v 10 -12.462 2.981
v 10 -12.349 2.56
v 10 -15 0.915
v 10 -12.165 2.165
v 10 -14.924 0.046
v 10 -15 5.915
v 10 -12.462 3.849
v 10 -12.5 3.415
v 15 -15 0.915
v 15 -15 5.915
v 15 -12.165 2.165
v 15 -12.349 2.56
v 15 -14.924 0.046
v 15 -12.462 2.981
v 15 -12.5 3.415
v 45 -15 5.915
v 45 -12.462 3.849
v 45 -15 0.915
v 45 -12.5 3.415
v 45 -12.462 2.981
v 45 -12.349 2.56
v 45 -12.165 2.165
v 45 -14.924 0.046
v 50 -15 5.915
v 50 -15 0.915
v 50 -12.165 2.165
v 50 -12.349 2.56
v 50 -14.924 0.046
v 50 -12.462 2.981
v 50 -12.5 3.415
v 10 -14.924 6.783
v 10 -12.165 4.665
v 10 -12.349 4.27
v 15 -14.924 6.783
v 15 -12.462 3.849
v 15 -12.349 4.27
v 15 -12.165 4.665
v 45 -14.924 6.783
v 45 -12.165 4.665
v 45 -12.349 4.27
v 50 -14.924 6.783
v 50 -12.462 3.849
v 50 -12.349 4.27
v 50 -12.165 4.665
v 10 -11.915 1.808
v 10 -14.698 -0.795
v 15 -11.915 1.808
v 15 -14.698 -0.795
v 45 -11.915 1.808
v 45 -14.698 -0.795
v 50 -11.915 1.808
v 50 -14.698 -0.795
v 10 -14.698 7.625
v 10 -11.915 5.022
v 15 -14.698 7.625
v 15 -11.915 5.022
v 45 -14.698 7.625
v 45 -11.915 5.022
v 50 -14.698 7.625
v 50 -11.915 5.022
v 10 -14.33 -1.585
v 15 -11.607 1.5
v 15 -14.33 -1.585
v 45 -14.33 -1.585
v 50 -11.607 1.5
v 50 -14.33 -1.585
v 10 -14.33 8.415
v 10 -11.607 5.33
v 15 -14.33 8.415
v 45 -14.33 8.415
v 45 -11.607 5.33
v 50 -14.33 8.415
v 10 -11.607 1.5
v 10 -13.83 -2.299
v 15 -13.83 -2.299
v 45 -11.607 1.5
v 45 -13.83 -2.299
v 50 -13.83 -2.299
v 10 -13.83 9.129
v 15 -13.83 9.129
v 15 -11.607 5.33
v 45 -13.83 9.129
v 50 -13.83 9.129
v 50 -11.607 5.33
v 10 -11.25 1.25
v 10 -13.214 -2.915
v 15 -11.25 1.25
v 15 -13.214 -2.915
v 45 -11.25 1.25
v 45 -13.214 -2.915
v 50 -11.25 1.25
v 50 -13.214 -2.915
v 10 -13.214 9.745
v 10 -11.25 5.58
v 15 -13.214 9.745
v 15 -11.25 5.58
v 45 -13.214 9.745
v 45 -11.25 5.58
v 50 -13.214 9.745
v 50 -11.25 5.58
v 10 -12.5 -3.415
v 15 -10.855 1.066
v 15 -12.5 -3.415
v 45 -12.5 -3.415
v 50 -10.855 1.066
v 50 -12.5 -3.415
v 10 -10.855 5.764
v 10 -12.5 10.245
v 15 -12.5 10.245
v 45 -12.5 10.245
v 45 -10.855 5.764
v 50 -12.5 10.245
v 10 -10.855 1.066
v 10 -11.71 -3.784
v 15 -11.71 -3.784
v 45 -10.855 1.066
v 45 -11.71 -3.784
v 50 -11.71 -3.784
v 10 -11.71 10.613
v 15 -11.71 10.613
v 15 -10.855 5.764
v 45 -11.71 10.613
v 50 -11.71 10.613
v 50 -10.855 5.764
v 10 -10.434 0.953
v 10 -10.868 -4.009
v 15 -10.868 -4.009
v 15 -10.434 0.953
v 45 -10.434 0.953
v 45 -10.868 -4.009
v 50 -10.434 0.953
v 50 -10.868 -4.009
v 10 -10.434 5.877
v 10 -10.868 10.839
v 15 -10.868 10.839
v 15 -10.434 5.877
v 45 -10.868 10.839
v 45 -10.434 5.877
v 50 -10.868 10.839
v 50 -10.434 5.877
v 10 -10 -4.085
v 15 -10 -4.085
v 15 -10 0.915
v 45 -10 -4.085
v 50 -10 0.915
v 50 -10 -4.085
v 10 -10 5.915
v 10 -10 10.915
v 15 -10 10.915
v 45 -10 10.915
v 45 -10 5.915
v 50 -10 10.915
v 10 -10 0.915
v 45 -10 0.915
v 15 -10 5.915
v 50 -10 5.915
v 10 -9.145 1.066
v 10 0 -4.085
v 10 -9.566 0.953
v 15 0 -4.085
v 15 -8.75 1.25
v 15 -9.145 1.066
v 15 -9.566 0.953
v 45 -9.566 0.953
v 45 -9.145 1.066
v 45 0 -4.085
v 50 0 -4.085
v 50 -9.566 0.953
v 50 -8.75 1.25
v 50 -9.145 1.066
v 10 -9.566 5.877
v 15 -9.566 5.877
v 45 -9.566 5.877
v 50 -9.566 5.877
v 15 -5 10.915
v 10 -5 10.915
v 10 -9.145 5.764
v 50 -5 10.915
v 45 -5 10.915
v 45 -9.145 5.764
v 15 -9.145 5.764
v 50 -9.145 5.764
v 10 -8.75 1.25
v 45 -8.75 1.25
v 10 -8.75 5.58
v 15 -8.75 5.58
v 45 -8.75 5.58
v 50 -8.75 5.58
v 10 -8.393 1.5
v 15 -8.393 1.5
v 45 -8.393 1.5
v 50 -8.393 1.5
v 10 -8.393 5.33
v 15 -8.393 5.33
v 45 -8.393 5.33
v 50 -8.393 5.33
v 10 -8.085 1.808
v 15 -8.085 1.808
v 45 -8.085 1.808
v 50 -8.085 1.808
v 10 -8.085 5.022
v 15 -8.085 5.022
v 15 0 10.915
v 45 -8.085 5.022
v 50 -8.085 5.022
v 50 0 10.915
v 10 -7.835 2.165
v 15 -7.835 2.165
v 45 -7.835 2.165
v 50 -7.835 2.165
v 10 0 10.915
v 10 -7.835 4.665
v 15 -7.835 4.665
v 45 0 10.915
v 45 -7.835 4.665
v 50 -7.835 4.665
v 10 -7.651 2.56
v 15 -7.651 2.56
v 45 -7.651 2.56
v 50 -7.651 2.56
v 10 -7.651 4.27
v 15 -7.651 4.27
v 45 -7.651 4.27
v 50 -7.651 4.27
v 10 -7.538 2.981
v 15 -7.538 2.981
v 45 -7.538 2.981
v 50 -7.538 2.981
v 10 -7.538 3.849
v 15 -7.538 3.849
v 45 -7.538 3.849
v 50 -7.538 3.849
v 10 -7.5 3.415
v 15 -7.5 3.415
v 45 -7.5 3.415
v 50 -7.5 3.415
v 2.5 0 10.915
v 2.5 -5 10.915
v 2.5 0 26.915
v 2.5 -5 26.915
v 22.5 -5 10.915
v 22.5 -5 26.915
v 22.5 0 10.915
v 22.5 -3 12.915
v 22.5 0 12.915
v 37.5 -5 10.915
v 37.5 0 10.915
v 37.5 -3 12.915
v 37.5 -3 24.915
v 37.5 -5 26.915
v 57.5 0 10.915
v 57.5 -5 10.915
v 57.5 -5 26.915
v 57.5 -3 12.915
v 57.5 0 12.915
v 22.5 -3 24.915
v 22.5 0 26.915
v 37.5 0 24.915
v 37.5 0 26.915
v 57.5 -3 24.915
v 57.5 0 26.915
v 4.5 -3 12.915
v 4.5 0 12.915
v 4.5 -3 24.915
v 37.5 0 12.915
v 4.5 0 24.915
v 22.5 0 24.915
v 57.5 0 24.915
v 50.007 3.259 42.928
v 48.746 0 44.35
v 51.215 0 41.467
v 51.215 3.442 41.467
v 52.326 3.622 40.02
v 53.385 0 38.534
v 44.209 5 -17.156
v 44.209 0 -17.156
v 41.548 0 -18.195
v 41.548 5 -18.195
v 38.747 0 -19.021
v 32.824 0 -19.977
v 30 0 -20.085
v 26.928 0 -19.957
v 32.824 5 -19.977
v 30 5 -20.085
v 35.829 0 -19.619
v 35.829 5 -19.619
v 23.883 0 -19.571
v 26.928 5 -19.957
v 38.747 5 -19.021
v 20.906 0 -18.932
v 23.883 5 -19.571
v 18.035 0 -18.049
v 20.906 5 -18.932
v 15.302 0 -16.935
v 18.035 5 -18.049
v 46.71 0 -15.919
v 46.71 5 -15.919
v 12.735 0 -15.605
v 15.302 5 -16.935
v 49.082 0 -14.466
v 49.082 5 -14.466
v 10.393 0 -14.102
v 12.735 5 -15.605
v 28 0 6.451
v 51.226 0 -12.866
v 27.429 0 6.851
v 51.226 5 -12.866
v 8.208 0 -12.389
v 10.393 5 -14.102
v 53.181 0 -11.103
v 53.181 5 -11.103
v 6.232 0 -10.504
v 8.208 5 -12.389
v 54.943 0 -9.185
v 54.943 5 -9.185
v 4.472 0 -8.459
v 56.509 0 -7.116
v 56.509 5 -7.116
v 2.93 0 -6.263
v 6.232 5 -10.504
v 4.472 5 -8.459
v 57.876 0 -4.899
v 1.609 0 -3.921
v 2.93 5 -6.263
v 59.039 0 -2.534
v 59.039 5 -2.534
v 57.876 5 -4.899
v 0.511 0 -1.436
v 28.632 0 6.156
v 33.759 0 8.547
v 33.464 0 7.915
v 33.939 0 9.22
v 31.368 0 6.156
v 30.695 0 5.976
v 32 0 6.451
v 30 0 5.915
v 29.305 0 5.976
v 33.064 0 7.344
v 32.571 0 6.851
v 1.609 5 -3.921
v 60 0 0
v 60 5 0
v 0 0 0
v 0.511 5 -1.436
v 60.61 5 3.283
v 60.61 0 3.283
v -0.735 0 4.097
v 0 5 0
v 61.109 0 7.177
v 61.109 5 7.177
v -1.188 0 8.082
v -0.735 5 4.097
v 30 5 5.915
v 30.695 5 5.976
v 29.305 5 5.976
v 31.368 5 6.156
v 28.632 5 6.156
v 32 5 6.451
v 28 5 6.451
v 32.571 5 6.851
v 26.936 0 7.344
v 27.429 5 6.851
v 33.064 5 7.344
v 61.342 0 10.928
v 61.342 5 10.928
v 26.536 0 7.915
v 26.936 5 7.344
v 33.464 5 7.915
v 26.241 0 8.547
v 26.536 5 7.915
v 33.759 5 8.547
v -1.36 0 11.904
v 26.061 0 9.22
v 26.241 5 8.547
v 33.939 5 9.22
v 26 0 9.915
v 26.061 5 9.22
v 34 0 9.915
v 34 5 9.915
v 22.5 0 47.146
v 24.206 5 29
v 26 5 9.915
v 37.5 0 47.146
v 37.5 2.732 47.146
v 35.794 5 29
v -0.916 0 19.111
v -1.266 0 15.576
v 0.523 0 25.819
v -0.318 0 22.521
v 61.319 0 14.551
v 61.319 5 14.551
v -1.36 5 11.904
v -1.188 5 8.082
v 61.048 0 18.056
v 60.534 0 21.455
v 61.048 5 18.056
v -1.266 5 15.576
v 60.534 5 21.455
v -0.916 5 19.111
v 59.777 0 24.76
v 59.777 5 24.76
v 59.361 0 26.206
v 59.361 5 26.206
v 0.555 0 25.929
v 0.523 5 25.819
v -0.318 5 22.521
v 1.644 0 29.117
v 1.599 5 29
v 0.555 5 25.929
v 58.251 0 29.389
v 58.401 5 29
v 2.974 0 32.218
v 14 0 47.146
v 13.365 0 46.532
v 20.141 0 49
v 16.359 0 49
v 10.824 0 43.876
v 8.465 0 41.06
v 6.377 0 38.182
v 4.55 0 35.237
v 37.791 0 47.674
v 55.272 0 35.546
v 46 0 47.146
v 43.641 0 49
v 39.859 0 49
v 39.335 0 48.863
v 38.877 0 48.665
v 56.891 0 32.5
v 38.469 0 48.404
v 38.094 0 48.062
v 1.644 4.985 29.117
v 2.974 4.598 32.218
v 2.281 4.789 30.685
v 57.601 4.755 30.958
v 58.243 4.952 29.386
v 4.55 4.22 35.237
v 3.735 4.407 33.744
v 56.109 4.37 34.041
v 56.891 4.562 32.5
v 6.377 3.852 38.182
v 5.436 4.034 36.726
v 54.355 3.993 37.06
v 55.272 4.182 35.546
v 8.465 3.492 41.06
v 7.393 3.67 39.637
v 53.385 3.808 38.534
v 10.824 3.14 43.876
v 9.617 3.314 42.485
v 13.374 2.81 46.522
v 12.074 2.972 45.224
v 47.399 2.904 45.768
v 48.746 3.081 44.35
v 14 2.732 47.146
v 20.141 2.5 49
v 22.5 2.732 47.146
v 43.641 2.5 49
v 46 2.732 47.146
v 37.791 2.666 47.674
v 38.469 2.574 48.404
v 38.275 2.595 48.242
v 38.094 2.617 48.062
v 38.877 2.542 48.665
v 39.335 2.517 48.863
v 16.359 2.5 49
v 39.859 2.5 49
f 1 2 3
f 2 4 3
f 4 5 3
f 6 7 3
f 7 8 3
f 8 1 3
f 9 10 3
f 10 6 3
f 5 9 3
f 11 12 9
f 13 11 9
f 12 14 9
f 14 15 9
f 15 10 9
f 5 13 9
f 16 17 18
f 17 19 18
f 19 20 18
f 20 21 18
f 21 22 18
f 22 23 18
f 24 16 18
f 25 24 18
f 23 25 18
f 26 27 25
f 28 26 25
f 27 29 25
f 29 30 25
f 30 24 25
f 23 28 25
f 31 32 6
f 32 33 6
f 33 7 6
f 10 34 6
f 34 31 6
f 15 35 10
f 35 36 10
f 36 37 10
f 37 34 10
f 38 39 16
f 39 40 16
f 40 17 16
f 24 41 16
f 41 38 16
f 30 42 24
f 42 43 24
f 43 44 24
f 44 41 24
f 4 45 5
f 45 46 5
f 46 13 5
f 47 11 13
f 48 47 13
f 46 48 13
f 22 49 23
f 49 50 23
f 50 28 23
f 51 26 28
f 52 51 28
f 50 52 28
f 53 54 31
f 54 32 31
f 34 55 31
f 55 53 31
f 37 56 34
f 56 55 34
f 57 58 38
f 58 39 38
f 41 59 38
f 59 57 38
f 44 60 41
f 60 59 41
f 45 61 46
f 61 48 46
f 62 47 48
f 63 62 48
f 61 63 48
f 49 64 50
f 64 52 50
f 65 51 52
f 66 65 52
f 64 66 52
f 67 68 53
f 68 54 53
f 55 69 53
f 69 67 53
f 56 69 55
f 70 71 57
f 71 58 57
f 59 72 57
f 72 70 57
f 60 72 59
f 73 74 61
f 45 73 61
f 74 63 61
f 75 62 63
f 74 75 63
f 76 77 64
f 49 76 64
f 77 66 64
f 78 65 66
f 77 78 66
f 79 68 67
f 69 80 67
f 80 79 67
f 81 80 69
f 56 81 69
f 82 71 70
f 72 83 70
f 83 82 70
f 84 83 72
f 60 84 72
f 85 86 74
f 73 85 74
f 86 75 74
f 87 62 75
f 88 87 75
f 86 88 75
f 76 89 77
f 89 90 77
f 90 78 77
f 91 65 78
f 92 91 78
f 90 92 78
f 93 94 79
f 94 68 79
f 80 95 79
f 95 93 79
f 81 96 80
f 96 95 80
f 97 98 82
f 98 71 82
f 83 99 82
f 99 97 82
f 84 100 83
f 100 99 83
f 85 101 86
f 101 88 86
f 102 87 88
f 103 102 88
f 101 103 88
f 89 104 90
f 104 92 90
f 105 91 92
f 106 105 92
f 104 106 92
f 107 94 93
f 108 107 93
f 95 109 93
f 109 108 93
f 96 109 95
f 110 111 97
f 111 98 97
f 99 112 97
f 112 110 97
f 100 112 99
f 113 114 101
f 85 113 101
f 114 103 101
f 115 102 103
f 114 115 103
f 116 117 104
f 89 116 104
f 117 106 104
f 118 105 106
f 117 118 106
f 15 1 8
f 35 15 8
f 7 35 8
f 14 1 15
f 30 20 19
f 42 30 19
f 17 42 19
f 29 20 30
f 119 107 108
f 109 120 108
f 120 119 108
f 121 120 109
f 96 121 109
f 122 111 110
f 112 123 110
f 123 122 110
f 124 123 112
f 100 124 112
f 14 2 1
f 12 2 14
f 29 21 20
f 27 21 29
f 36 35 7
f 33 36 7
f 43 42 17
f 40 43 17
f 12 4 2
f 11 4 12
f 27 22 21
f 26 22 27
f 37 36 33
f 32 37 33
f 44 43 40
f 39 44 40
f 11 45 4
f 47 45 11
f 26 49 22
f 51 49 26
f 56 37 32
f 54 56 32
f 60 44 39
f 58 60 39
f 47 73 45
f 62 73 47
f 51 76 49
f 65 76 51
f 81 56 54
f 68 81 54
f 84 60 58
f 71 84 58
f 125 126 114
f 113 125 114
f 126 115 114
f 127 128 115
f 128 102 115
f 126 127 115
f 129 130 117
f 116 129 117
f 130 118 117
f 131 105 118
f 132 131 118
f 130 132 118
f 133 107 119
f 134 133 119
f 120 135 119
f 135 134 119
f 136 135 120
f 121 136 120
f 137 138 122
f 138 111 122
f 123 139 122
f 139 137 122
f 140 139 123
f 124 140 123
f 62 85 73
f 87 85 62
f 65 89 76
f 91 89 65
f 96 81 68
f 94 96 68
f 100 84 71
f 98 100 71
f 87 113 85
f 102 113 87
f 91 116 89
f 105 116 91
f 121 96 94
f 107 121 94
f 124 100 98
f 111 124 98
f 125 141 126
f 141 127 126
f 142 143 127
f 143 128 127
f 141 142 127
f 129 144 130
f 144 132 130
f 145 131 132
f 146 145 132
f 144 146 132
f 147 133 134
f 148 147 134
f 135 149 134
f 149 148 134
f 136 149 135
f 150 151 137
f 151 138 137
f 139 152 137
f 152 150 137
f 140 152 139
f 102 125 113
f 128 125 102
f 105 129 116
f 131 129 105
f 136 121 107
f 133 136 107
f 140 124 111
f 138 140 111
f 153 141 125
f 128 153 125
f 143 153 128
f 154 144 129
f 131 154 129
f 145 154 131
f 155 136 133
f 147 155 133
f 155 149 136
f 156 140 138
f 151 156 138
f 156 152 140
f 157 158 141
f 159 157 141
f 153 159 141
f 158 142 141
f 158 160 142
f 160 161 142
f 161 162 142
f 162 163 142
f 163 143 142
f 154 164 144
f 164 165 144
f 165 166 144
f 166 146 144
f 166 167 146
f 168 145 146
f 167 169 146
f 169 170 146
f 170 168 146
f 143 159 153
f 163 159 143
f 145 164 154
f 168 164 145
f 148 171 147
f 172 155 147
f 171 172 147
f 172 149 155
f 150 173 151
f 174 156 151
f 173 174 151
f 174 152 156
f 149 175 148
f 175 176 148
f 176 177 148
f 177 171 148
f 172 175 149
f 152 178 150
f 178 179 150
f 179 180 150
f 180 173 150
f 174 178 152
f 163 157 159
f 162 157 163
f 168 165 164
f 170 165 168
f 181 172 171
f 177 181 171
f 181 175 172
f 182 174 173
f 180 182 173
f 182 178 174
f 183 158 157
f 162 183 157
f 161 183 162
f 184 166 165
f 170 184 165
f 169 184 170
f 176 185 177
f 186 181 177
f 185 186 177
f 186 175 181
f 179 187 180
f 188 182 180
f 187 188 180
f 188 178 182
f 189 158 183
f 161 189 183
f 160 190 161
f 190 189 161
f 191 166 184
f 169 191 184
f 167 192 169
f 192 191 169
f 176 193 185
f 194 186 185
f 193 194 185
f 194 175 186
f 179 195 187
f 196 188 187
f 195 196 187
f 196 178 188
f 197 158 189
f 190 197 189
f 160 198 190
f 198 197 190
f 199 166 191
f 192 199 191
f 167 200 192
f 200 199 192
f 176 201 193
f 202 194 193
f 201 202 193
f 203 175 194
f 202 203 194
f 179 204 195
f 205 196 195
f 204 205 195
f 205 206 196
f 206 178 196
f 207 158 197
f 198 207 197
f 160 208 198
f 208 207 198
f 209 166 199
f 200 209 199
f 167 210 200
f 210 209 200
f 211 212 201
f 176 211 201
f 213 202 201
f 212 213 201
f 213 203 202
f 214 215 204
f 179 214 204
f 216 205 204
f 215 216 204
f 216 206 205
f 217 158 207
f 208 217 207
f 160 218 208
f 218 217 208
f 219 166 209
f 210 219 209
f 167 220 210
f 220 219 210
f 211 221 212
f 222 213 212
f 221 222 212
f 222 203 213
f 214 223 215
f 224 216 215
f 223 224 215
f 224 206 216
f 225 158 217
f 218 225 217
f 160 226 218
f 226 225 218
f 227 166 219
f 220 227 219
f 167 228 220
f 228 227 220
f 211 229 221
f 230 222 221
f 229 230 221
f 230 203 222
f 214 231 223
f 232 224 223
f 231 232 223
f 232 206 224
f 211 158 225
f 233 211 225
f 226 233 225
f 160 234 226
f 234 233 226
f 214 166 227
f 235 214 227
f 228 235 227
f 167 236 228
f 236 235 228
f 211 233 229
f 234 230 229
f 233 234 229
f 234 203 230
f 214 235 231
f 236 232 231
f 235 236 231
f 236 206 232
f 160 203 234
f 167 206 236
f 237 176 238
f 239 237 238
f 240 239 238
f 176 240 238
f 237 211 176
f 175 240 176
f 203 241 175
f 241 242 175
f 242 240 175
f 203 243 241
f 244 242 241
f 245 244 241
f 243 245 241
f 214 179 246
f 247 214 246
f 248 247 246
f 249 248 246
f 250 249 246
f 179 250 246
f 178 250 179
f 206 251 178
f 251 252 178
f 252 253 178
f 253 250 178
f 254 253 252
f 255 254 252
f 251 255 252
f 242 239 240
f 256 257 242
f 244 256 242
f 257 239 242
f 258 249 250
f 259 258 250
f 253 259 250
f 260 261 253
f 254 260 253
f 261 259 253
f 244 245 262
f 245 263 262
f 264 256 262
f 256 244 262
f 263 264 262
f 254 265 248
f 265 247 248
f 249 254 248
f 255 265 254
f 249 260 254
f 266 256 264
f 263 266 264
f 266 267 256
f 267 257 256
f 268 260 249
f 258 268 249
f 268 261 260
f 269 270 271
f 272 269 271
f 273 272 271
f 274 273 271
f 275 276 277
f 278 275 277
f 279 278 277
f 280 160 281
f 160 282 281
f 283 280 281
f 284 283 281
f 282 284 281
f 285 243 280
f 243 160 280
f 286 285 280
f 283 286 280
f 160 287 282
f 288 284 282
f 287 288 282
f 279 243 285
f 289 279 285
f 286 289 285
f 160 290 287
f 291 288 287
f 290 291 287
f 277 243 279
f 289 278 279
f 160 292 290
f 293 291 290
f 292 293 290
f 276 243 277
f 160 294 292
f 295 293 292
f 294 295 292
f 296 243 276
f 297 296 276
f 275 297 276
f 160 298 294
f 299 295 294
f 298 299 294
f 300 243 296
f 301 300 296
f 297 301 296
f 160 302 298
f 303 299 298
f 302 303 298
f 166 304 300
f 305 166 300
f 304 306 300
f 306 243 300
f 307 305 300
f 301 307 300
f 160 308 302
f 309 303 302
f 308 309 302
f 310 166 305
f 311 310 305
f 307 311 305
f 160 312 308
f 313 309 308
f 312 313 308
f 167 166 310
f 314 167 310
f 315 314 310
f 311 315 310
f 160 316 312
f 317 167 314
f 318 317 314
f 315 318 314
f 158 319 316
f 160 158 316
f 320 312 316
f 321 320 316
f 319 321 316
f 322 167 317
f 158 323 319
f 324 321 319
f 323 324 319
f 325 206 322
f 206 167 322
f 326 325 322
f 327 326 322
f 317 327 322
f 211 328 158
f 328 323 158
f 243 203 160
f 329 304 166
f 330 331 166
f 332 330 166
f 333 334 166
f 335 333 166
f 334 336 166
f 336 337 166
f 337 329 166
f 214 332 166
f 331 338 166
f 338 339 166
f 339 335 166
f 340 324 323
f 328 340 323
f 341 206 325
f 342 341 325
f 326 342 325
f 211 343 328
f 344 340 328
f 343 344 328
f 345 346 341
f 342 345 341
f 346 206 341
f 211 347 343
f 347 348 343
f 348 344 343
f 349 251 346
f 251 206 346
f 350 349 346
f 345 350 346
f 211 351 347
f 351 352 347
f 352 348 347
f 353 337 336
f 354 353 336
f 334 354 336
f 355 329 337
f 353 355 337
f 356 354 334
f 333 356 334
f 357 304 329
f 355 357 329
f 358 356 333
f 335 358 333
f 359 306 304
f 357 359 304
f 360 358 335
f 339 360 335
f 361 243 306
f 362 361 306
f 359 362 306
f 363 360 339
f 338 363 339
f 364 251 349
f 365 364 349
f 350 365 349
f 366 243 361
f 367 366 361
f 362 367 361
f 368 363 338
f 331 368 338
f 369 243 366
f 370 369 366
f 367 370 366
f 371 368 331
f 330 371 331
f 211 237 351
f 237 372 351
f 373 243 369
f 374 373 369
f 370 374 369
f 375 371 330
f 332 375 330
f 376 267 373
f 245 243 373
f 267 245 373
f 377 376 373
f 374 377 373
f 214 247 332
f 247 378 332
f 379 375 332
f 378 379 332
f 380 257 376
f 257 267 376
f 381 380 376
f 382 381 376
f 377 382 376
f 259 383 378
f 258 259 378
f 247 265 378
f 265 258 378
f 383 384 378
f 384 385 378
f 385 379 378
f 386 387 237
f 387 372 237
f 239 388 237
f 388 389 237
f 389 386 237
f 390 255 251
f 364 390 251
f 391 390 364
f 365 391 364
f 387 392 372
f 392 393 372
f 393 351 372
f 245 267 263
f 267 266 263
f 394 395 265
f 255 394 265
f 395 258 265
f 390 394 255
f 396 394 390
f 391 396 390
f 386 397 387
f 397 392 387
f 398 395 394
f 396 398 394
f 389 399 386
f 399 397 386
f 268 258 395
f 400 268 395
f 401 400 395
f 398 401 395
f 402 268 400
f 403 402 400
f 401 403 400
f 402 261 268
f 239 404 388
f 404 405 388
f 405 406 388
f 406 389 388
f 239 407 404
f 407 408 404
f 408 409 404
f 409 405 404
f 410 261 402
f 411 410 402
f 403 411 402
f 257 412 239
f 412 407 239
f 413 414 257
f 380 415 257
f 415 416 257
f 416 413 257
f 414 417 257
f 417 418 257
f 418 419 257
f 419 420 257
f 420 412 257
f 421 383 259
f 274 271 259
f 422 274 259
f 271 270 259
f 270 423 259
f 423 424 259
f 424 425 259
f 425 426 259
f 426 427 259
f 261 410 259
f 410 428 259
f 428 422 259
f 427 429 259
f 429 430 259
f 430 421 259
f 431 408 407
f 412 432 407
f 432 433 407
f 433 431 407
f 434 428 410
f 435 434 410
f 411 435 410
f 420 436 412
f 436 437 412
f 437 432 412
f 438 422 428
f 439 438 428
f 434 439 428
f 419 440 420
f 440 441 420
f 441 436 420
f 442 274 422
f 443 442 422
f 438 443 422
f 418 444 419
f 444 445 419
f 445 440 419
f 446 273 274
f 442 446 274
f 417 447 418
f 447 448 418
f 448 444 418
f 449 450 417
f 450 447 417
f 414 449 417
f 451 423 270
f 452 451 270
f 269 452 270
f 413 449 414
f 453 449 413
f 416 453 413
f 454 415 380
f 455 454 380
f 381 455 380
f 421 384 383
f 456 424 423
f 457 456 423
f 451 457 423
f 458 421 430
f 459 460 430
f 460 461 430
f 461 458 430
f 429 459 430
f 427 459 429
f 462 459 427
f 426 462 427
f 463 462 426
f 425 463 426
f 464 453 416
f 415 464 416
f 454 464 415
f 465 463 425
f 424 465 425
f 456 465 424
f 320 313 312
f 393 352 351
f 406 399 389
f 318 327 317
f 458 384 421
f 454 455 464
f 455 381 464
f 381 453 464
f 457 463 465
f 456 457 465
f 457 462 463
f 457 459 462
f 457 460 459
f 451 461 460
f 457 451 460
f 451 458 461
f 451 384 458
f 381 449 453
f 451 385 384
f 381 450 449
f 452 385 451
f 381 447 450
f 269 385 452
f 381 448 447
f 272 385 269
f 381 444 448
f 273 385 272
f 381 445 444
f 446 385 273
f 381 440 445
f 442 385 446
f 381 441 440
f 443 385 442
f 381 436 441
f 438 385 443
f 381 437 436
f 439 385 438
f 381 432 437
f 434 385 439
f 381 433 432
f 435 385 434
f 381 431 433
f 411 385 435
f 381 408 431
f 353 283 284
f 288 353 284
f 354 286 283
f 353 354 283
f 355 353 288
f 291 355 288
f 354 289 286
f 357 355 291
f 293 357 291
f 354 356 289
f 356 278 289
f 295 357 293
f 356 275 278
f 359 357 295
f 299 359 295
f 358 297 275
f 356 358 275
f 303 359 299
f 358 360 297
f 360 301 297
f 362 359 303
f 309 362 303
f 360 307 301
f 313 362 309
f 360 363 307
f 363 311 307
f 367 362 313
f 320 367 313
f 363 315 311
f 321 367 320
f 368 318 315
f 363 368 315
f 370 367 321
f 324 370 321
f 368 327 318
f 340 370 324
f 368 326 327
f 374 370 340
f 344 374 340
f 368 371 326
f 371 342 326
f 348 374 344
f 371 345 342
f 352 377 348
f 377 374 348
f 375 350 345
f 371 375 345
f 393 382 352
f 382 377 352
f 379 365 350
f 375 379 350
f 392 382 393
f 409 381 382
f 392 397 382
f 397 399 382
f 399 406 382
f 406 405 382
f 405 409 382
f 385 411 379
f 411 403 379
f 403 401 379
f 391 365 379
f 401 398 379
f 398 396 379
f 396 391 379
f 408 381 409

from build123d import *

# Parameters (mm, degrees)
BOSS_EXTRUDE1_DEPTH = 5
SKETCH2_W           = 20
SKETCH2_H           = 2
BOSS_EXTRUDE2_DEPTH = 3
SKETCH3_W           = 20
SKETCH3_H           = 16
BOSS_EXTRUDE3_DEPTH = 2
CUT_EXTRUDE1_DEPTH  = 62.362825506
SKETCH6_W           = 5
SKETCH6_H           = 15
BOSS_EXTRUDE4_DEPTH = 15
SKETCH7_R           = 2.5
CUT_EXTRUDE2_DEPTH  = 40
FILLET1_R           = 5
SKETCH8_W           = 2
SKETCH8_H           = 12
BOSS_EXTRUDE5_DEPTH = 3


with BuildPart() as part:
    # Sketch1 → Boss-Extrude1 (new body)
    with BuildSketch(Plane(origin=(0, 0, 0), x_dir=(1, 0, 0), z_dir=(0, 1, 0))):
        with BuildLine():
            Line((26, -9.914732545), (22.5, -47.146428929))
            Line((22.5, -47.146428929), (20.1411286, -49))
            Line((20.1411286, -49), (16.3588714, -49))
            Line((16.3588714, -49), (14, -47.146428929))
            add(Edge.make_bspline(
                [(0, 0), (-5.93850555, -28.119223668), (14, -47.146428929)],
                knots=[0, 0, 0, 1, 1, 1], degree=2))
            add(Edge.make_bspline(
                [(0, 0), (8.75, 26.780356607), (51.25, 26.780356607), (60, 0)],
                knots=[0, 0, 0, 0, 1, 1, 1, 1], degree=3))
            add(Edge.make_bspline(
                [(60, 0), (65.93850555, -28.119223668), (46, -47.146428929)],
                knots=[0, 0, 0, 1, 1, 1], degree=2))
            Line((46, -47.146428929), (43.6411286, -49))
            Line((43.6411286, -49), (39.8588714, -49))
            add(Edge.make_bspline(
                [(37.5, -47.146428929), (38.196873938, -48.687326951), (39.8588714, -49)],
                knots=[0, 0, 0, 1, 1, 1], degree=2))
            Line((37.5, -47.146428929), (34, -9.914732545))
            ThreePointArc((34, -9.914732545), (30, -5.914732545), (26, -9.914732545))
        make_face()
    extrude(amount=BOSS_EXTRUDE1_DEPTH)

    # Sketch2 → Boss-Extrude2 (add)
    with BuildSketch(Plane.XZ):
        with Locations((47.5, 11.914732545)):
            Rectangle(SKETCH2_W, SKETCH2_H)
        with Locations((47.5, 25.914732545)):
            Rectangle(SKETCH2_W, SKETCH2_H)
        with Locations((12.5, 11.914732545)):
            Rectangle(SKETCH2_W, SKETCH2_H)
        with Locations((12.5, 25.914732545)):
            Rectangle(SKETCH2_W, SKETCH2_H)
    extrude(amount=BOSS_EXTRUDE2_DEPTH)

    # Sketch3 → Boss-Extrude3 (add)
    with BuildSketch(Plane.XZ.offset(3)):
        with Locations((47.5, 18.914732545)):
            Rectangle(SKETCH3_W, SKETCH3_H)
        with Locations((12.5, 18.914732545)):
            Rectangle(SKETCH3_W, SKETCH3_H)
    extrude(amount=BOSS_EXTRUDE3_DEPTH)

    # Sketch5 → Cut-Extrude1 (cut, through all)
    with BuildSketch(Plane(origin=(0, 0, 0), x_dir=(0, 0, -1), z_dir=(1, 0, 0))):
        Polygon((-29, 5), (-49, 2.5), (-49, 5), align=None)
    extrude(amount=CUT_EXTRUDE1_DEPTH, mode=Mode.SUBTRACT)

    # Sketch6 → Boss-Extrude4 (add)
    with BuildSketch(Plane.XZ):
        with Locations((12.5, 3.414732545)):
            Rectangle(SKETCH6_W, SKETCH6_H)
    boss_extrude4 = extrude(amount=BOSS_EXTRUDE4_DEPTH)

    # Mirror1: Boss-Extrude4 across plane
    add(boss_extrude4.mirror(Plane(origin=(30, 0, 0), x_dir=(0, 0, 1), z_dir=(1, 0, 0))))

    # Sketch7 → Cut-Extrude2 (cut)
    with BuildSketch(Plane.ZY.offset(-10)):
        with Locations((3.414732545, -10)):
            Circle(SKETCH7_R)
    extrude(amount=-CUT_EXTRUDE2_DEPTH, mode=Mode.SUBTRACT)

    # Fillet1
    fillet1_edges = [part.edges().sort_by_distance(p)[0] for p in [
        (12.5, -15, 10.914732545),
        (12.5, -15, -4.085267455),
        (47.5, -15, 10.914732545),
        (47.5, -15, -4.085267455),
    ]]
    fillet(fillet1_edges, radius=FILLET1_R)

    # Sketch8 → Boss-Extrude5 (add)
    with BuildSketch(Plane.XZ):
        with Locations((3.5, 18.914732545)):
            Rectangle(SKETCH8_W, SKETCH8_H)
    extrude(amount=BOSS_EXTRUDE5_DEPTH)


solid = part.part
